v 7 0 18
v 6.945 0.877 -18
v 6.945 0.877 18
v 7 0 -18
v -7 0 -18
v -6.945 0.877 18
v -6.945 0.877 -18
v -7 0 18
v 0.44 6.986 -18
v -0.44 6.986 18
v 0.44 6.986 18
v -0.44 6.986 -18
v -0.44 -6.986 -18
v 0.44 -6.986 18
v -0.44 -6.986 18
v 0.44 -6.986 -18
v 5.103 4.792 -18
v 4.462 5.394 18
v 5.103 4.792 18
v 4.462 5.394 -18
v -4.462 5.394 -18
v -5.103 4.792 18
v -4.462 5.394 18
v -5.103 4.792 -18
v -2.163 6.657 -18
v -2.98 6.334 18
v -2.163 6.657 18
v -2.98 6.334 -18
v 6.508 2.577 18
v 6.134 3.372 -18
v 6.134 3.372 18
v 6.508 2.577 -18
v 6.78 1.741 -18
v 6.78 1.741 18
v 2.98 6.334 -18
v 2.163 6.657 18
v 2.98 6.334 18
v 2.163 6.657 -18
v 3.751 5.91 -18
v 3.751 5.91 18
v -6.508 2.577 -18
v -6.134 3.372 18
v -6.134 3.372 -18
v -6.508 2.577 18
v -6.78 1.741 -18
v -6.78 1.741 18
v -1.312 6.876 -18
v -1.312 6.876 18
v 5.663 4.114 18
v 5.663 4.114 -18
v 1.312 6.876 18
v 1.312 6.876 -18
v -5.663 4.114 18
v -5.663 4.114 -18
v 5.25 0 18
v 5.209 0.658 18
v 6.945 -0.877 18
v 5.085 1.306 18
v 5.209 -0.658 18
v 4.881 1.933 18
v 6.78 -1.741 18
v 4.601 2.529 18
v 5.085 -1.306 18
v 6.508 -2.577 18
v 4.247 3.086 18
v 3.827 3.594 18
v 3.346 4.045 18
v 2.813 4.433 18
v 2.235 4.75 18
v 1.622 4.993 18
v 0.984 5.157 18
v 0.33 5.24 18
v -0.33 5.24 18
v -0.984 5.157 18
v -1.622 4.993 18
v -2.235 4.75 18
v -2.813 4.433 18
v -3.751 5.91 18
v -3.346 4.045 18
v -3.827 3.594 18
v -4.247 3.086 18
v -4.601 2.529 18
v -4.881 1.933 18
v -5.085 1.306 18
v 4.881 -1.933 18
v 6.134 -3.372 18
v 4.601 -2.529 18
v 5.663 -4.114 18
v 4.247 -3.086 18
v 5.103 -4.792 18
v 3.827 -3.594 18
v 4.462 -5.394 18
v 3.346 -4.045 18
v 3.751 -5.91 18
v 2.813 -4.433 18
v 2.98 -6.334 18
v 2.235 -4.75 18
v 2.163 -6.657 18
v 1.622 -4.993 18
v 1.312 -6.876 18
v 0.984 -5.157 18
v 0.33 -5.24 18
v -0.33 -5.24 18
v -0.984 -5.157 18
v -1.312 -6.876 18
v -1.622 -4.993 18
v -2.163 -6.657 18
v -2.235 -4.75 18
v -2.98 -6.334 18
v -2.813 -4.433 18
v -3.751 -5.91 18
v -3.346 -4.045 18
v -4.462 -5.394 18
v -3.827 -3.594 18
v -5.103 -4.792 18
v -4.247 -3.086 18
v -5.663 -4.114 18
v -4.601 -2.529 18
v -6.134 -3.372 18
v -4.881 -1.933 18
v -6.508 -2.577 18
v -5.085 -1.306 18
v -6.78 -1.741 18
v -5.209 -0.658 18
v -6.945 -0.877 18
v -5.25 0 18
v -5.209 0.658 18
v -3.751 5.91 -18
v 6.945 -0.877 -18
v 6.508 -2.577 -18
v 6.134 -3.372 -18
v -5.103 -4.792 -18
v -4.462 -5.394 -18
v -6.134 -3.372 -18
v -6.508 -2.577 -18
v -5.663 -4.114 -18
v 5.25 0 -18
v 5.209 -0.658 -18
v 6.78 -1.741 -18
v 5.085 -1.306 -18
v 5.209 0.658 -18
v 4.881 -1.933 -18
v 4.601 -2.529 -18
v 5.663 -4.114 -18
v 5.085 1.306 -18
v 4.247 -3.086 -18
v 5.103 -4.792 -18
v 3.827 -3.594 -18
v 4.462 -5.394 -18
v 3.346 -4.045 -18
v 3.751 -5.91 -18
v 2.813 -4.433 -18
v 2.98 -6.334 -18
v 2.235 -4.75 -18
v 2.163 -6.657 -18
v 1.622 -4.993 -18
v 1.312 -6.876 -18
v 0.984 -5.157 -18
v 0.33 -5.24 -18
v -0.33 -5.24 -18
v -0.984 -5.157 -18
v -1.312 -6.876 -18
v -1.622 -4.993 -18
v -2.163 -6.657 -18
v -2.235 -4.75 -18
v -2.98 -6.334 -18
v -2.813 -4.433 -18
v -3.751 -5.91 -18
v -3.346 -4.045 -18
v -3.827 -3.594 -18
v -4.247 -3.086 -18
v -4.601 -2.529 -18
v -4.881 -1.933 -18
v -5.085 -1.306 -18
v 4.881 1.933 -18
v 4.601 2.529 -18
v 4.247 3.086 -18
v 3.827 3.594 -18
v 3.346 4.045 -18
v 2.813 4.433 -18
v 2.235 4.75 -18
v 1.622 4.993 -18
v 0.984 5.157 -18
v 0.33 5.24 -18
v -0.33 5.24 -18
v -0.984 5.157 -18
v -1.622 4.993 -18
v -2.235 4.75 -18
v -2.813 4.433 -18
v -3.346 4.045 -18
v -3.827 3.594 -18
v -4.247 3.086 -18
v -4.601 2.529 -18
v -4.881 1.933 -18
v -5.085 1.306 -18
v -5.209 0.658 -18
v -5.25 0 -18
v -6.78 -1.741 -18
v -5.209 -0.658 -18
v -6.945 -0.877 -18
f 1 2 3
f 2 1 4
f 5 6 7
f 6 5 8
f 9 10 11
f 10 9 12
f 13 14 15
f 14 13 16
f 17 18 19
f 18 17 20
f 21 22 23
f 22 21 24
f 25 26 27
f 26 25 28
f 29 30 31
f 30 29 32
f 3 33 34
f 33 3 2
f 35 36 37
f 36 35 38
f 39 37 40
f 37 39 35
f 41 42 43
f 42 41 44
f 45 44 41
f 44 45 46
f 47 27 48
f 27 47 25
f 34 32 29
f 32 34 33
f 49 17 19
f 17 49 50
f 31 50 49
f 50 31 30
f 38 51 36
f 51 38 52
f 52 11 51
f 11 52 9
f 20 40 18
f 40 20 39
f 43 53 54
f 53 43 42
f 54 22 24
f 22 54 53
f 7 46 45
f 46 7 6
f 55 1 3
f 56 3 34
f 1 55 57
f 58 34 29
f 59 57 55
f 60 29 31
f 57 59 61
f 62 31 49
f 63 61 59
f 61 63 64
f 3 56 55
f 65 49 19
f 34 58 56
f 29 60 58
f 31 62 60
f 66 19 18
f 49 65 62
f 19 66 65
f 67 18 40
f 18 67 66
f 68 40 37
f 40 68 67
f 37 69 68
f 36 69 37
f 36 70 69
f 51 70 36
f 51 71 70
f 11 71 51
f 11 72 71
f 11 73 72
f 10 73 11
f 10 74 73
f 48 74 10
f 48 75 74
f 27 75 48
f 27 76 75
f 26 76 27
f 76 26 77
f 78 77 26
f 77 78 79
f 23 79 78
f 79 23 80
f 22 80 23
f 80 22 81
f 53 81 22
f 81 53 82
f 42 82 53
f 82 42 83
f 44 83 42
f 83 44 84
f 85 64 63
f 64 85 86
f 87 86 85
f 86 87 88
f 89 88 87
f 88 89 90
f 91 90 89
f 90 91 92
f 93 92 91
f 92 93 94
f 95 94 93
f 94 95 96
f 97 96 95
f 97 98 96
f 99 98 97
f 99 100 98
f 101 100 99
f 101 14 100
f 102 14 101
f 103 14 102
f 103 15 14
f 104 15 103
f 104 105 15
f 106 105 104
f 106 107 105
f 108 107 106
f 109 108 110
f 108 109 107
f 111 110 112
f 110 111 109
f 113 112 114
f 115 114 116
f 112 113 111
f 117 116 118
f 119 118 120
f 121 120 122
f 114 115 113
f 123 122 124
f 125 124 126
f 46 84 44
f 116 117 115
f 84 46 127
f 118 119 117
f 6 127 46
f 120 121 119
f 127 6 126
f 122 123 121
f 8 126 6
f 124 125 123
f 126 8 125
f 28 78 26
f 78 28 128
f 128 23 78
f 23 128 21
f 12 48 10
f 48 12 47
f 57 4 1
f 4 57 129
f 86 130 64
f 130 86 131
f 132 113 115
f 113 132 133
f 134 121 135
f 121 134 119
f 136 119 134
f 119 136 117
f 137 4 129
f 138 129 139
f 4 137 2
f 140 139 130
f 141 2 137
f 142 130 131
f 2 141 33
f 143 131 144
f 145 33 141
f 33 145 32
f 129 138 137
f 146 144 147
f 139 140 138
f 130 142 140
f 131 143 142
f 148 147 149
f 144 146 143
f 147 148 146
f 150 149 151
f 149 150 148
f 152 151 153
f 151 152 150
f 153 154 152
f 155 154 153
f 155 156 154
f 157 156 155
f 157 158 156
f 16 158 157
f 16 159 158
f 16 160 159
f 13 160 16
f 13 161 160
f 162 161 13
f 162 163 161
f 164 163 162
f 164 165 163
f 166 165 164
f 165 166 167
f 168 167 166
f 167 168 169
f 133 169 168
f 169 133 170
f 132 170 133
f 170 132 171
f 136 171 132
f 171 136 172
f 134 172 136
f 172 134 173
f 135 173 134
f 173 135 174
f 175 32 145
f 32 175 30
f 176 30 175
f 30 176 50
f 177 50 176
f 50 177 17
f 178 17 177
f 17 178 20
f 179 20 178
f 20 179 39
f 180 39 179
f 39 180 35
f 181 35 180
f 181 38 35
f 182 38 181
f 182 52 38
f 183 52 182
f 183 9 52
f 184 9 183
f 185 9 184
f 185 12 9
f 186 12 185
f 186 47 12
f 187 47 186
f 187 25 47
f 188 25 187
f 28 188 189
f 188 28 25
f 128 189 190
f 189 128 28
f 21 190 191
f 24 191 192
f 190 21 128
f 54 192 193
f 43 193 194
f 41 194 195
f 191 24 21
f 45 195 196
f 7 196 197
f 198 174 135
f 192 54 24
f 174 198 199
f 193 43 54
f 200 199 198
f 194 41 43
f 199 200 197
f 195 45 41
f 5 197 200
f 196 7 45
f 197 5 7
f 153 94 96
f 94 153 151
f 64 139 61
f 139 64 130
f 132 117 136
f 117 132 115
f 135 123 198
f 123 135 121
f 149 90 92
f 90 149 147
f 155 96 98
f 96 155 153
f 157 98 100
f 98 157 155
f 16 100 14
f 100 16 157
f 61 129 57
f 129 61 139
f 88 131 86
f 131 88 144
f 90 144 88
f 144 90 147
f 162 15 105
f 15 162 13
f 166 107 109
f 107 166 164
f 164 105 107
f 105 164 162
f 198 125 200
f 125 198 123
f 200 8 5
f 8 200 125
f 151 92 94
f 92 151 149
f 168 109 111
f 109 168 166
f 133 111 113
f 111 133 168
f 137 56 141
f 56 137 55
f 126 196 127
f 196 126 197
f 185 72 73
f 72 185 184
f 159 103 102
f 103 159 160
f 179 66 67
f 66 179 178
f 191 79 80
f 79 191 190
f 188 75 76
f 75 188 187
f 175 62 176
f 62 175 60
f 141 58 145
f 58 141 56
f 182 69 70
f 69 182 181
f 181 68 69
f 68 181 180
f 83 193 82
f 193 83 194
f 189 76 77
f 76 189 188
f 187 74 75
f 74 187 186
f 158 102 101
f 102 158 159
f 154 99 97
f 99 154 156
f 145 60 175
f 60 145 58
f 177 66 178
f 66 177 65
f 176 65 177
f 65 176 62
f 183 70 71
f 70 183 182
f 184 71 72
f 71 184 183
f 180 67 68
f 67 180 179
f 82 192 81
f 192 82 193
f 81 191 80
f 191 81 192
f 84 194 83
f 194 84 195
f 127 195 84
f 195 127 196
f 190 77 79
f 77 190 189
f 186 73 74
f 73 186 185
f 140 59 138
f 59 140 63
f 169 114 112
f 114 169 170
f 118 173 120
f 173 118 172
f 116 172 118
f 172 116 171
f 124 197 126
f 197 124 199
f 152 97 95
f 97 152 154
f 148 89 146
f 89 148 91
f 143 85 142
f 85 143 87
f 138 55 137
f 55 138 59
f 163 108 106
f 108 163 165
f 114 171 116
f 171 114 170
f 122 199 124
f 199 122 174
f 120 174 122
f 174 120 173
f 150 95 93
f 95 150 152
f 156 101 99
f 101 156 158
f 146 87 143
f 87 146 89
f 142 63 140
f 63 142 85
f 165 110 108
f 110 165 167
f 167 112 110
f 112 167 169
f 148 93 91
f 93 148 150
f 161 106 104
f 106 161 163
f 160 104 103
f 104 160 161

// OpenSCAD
$fn = 50;


difference() {
	union() {
		translate(v = [0, 0, -18.0000000000]) {
			cylinder(h = 36, r = 7.0000000000);
		}
	}
	union() {
		translate(v = [0, 0, -100.0000000000]) {
			cylinder(h = 200, r = 5.2500000000);
		}
	}
}
